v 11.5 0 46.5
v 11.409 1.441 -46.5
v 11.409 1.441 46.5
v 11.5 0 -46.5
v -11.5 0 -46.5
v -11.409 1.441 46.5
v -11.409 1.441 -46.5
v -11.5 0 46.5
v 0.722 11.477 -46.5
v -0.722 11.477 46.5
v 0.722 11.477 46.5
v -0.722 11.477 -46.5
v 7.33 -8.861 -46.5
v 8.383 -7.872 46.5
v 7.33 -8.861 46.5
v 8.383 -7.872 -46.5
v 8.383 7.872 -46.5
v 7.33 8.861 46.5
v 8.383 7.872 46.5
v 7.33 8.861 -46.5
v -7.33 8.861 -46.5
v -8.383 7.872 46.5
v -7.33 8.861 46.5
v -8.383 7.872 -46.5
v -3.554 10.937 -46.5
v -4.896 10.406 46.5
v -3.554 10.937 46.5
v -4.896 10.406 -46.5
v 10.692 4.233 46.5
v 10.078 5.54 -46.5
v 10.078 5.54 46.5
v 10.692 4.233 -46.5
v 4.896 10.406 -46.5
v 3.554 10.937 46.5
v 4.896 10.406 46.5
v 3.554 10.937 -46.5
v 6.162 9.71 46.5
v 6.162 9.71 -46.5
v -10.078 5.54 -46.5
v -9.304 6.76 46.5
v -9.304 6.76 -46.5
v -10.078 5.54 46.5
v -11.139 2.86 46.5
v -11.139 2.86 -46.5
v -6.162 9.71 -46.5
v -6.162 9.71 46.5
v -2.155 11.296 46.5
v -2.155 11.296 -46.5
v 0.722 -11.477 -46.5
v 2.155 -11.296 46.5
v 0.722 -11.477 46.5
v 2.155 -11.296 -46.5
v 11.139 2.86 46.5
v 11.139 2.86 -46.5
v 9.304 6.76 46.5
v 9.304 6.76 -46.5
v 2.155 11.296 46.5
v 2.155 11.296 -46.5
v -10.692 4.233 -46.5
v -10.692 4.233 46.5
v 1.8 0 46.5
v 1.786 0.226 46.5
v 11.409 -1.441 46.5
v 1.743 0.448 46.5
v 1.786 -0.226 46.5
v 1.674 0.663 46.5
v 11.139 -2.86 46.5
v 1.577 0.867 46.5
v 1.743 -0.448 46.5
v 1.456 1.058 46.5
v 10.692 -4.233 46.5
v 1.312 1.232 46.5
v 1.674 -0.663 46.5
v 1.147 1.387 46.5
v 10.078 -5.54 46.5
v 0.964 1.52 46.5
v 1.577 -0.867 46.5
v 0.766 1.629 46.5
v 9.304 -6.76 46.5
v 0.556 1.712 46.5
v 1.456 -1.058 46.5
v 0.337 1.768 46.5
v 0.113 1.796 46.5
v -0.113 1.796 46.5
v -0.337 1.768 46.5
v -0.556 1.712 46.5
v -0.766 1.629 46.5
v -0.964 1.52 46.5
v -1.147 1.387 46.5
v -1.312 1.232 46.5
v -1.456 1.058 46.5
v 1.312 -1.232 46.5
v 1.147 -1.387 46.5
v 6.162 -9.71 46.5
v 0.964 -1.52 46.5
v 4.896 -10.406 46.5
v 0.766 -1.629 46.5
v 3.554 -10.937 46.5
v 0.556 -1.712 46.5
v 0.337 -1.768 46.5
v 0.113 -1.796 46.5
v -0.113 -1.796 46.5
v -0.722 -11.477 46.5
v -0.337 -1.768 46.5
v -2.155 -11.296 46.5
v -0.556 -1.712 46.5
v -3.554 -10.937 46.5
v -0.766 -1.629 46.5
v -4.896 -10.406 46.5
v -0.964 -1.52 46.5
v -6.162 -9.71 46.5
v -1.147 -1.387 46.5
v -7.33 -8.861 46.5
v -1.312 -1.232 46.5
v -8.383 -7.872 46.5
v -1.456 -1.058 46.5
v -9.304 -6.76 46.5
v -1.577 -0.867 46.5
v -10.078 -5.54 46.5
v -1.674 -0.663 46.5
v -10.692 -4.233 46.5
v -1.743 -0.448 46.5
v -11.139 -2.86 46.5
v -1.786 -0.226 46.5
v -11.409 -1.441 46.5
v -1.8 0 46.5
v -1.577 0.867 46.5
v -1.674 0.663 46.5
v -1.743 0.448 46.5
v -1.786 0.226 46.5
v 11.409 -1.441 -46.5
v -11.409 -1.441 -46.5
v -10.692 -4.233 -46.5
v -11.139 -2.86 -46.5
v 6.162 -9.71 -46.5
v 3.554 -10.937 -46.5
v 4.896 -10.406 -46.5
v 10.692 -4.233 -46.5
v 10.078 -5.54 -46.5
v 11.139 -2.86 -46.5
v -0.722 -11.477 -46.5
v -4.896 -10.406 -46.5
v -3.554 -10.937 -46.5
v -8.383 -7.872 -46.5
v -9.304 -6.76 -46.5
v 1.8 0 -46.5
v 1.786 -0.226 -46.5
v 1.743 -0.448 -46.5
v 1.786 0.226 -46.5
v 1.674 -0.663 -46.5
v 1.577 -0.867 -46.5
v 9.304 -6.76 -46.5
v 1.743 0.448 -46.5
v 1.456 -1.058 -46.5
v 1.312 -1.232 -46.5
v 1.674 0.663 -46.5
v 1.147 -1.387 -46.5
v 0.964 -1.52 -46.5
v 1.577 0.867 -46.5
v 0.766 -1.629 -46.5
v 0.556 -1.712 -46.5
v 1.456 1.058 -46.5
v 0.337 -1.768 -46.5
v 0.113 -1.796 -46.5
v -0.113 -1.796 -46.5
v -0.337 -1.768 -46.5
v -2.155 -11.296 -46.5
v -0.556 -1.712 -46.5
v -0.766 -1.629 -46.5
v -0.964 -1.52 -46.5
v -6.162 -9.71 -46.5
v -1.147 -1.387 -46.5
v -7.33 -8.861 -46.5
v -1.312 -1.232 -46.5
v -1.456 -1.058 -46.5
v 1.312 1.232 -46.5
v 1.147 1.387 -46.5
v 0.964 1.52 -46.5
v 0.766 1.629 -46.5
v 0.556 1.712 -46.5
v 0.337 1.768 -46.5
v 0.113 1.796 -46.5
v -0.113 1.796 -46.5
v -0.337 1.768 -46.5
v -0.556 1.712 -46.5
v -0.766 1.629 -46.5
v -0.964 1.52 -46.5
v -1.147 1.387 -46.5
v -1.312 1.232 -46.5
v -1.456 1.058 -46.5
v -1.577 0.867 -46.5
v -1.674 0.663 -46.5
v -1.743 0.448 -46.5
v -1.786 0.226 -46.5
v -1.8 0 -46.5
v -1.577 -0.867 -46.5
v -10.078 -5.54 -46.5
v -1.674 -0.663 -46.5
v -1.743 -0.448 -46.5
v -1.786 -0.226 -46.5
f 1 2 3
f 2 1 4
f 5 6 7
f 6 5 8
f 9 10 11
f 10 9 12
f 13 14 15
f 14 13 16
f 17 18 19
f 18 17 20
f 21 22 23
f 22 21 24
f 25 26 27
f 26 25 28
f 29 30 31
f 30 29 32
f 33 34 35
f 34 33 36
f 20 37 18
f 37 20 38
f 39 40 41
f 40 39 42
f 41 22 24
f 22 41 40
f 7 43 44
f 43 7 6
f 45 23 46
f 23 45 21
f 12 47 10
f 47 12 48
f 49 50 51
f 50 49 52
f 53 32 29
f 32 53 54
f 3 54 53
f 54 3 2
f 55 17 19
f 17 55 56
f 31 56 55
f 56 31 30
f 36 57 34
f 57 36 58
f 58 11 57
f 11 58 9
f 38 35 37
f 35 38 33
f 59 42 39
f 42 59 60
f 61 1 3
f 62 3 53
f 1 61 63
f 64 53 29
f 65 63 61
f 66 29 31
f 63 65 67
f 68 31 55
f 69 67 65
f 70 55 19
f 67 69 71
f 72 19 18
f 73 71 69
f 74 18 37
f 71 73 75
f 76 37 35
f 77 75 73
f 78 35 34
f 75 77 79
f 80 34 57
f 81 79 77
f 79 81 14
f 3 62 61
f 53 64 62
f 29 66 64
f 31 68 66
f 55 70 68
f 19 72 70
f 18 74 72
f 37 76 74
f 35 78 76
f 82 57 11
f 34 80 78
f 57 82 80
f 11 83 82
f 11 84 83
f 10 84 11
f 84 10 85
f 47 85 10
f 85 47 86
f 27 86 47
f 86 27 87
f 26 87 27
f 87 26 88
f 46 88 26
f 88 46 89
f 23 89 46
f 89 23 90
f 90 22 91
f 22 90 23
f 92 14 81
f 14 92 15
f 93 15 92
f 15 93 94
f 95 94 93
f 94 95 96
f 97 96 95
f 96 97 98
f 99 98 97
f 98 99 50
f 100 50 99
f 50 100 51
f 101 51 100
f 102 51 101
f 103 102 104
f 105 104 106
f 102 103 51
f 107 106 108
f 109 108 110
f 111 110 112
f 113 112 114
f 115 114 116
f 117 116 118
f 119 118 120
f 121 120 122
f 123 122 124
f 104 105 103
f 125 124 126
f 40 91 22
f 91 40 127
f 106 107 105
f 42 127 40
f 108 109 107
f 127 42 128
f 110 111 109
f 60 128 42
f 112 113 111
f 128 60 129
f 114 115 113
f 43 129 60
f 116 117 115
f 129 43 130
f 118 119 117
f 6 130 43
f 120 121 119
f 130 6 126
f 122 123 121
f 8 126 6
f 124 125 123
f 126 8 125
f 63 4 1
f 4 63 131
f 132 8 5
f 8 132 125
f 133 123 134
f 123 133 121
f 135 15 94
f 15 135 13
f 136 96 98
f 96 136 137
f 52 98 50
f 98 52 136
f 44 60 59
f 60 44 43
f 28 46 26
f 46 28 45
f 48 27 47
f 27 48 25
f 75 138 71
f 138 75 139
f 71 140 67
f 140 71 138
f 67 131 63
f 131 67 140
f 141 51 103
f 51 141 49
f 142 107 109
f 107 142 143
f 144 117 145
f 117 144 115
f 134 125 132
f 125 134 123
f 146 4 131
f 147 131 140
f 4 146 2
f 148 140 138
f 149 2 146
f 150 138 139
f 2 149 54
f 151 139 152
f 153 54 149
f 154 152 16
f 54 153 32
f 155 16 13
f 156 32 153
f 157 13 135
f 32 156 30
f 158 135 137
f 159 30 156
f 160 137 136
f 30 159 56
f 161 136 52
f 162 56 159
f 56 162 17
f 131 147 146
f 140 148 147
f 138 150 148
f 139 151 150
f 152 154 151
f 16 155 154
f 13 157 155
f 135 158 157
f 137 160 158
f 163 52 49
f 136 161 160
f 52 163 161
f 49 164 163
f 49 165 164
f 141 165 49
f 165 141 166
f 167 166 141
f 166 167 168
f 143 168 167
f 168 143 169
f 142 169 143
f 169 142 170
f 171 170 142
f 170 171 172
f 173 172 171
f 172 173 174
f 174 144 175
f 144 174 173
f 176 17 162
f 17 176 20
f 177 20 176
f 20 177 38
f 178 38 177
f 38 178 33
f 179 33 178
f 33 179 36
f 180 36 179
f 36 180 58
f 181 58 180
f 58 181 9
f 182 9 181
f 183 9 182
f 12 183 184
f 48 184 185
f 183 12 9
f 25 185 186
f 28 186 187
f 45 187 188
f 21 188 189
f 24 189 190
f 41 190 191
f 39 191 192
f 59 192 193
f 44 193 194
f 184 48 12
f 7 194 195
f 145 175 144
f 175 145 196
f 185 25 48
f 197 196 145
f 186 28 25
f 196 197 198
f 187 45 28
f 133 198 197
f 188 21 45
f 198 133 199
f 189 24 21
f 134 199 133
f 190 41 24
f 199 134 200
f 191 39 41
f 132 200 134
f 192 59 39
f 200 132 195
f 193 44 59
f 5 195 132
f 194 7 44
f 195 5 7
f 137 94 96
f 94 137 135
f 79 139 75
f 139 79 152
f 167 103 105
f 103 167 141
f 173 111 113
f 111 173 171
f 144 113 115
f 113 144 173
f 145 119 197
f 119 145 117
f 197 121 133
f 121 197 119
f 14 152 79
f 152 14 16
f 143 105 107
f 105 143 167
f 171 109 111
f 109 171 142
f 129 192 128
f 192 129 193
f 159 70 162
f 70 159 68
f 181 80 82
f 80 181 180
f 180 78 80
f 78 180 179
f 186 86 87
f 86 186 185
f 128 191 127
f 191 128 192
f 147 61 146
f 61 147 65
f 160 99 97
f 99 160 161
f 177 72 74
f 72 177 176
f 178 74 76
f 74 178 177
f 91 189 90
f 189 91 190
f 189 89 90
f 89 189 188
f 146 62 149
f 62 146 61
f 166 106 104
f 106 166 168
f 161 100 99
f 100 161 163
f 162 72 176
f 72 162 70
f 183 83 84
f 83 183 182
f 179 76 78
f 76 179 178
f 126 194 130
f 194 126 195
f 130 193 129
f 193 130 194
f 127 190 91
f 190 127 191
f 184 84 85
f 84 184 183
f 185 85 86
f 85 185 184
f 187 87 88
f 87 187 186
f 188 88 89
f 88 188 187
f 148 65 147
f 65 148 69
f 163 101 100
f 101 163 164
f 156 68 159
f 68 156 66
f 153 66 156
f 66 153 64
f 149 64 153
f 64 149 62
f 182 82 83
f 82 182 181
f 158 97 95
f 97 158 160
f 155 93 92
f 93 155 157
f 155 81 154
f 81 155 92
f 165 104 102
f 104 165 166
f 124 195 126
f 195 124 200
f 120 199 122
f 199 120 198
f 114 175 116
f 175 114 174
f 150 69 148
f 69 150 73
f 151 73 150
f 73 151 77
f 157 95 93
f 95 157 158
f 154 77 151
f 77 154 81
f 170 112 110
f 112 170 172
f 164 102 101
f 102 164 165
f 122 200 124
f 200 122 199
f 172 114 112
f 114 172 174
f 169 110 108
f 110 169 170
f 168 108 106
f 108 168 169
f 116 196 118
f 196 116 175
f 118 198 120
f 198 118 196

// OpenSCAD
$fn = 50;


difference() {
	union() {
		translate(v = [0, 0, -46.5000000000]) {
			cylinder(h = 93, r = 11.5000000000);
		}
	}
	union() {
		translate(v = [0, 0, -100.0000000000]) {
			cylinder(h = 200, r = 1.8000000000);
		}
	}
}
